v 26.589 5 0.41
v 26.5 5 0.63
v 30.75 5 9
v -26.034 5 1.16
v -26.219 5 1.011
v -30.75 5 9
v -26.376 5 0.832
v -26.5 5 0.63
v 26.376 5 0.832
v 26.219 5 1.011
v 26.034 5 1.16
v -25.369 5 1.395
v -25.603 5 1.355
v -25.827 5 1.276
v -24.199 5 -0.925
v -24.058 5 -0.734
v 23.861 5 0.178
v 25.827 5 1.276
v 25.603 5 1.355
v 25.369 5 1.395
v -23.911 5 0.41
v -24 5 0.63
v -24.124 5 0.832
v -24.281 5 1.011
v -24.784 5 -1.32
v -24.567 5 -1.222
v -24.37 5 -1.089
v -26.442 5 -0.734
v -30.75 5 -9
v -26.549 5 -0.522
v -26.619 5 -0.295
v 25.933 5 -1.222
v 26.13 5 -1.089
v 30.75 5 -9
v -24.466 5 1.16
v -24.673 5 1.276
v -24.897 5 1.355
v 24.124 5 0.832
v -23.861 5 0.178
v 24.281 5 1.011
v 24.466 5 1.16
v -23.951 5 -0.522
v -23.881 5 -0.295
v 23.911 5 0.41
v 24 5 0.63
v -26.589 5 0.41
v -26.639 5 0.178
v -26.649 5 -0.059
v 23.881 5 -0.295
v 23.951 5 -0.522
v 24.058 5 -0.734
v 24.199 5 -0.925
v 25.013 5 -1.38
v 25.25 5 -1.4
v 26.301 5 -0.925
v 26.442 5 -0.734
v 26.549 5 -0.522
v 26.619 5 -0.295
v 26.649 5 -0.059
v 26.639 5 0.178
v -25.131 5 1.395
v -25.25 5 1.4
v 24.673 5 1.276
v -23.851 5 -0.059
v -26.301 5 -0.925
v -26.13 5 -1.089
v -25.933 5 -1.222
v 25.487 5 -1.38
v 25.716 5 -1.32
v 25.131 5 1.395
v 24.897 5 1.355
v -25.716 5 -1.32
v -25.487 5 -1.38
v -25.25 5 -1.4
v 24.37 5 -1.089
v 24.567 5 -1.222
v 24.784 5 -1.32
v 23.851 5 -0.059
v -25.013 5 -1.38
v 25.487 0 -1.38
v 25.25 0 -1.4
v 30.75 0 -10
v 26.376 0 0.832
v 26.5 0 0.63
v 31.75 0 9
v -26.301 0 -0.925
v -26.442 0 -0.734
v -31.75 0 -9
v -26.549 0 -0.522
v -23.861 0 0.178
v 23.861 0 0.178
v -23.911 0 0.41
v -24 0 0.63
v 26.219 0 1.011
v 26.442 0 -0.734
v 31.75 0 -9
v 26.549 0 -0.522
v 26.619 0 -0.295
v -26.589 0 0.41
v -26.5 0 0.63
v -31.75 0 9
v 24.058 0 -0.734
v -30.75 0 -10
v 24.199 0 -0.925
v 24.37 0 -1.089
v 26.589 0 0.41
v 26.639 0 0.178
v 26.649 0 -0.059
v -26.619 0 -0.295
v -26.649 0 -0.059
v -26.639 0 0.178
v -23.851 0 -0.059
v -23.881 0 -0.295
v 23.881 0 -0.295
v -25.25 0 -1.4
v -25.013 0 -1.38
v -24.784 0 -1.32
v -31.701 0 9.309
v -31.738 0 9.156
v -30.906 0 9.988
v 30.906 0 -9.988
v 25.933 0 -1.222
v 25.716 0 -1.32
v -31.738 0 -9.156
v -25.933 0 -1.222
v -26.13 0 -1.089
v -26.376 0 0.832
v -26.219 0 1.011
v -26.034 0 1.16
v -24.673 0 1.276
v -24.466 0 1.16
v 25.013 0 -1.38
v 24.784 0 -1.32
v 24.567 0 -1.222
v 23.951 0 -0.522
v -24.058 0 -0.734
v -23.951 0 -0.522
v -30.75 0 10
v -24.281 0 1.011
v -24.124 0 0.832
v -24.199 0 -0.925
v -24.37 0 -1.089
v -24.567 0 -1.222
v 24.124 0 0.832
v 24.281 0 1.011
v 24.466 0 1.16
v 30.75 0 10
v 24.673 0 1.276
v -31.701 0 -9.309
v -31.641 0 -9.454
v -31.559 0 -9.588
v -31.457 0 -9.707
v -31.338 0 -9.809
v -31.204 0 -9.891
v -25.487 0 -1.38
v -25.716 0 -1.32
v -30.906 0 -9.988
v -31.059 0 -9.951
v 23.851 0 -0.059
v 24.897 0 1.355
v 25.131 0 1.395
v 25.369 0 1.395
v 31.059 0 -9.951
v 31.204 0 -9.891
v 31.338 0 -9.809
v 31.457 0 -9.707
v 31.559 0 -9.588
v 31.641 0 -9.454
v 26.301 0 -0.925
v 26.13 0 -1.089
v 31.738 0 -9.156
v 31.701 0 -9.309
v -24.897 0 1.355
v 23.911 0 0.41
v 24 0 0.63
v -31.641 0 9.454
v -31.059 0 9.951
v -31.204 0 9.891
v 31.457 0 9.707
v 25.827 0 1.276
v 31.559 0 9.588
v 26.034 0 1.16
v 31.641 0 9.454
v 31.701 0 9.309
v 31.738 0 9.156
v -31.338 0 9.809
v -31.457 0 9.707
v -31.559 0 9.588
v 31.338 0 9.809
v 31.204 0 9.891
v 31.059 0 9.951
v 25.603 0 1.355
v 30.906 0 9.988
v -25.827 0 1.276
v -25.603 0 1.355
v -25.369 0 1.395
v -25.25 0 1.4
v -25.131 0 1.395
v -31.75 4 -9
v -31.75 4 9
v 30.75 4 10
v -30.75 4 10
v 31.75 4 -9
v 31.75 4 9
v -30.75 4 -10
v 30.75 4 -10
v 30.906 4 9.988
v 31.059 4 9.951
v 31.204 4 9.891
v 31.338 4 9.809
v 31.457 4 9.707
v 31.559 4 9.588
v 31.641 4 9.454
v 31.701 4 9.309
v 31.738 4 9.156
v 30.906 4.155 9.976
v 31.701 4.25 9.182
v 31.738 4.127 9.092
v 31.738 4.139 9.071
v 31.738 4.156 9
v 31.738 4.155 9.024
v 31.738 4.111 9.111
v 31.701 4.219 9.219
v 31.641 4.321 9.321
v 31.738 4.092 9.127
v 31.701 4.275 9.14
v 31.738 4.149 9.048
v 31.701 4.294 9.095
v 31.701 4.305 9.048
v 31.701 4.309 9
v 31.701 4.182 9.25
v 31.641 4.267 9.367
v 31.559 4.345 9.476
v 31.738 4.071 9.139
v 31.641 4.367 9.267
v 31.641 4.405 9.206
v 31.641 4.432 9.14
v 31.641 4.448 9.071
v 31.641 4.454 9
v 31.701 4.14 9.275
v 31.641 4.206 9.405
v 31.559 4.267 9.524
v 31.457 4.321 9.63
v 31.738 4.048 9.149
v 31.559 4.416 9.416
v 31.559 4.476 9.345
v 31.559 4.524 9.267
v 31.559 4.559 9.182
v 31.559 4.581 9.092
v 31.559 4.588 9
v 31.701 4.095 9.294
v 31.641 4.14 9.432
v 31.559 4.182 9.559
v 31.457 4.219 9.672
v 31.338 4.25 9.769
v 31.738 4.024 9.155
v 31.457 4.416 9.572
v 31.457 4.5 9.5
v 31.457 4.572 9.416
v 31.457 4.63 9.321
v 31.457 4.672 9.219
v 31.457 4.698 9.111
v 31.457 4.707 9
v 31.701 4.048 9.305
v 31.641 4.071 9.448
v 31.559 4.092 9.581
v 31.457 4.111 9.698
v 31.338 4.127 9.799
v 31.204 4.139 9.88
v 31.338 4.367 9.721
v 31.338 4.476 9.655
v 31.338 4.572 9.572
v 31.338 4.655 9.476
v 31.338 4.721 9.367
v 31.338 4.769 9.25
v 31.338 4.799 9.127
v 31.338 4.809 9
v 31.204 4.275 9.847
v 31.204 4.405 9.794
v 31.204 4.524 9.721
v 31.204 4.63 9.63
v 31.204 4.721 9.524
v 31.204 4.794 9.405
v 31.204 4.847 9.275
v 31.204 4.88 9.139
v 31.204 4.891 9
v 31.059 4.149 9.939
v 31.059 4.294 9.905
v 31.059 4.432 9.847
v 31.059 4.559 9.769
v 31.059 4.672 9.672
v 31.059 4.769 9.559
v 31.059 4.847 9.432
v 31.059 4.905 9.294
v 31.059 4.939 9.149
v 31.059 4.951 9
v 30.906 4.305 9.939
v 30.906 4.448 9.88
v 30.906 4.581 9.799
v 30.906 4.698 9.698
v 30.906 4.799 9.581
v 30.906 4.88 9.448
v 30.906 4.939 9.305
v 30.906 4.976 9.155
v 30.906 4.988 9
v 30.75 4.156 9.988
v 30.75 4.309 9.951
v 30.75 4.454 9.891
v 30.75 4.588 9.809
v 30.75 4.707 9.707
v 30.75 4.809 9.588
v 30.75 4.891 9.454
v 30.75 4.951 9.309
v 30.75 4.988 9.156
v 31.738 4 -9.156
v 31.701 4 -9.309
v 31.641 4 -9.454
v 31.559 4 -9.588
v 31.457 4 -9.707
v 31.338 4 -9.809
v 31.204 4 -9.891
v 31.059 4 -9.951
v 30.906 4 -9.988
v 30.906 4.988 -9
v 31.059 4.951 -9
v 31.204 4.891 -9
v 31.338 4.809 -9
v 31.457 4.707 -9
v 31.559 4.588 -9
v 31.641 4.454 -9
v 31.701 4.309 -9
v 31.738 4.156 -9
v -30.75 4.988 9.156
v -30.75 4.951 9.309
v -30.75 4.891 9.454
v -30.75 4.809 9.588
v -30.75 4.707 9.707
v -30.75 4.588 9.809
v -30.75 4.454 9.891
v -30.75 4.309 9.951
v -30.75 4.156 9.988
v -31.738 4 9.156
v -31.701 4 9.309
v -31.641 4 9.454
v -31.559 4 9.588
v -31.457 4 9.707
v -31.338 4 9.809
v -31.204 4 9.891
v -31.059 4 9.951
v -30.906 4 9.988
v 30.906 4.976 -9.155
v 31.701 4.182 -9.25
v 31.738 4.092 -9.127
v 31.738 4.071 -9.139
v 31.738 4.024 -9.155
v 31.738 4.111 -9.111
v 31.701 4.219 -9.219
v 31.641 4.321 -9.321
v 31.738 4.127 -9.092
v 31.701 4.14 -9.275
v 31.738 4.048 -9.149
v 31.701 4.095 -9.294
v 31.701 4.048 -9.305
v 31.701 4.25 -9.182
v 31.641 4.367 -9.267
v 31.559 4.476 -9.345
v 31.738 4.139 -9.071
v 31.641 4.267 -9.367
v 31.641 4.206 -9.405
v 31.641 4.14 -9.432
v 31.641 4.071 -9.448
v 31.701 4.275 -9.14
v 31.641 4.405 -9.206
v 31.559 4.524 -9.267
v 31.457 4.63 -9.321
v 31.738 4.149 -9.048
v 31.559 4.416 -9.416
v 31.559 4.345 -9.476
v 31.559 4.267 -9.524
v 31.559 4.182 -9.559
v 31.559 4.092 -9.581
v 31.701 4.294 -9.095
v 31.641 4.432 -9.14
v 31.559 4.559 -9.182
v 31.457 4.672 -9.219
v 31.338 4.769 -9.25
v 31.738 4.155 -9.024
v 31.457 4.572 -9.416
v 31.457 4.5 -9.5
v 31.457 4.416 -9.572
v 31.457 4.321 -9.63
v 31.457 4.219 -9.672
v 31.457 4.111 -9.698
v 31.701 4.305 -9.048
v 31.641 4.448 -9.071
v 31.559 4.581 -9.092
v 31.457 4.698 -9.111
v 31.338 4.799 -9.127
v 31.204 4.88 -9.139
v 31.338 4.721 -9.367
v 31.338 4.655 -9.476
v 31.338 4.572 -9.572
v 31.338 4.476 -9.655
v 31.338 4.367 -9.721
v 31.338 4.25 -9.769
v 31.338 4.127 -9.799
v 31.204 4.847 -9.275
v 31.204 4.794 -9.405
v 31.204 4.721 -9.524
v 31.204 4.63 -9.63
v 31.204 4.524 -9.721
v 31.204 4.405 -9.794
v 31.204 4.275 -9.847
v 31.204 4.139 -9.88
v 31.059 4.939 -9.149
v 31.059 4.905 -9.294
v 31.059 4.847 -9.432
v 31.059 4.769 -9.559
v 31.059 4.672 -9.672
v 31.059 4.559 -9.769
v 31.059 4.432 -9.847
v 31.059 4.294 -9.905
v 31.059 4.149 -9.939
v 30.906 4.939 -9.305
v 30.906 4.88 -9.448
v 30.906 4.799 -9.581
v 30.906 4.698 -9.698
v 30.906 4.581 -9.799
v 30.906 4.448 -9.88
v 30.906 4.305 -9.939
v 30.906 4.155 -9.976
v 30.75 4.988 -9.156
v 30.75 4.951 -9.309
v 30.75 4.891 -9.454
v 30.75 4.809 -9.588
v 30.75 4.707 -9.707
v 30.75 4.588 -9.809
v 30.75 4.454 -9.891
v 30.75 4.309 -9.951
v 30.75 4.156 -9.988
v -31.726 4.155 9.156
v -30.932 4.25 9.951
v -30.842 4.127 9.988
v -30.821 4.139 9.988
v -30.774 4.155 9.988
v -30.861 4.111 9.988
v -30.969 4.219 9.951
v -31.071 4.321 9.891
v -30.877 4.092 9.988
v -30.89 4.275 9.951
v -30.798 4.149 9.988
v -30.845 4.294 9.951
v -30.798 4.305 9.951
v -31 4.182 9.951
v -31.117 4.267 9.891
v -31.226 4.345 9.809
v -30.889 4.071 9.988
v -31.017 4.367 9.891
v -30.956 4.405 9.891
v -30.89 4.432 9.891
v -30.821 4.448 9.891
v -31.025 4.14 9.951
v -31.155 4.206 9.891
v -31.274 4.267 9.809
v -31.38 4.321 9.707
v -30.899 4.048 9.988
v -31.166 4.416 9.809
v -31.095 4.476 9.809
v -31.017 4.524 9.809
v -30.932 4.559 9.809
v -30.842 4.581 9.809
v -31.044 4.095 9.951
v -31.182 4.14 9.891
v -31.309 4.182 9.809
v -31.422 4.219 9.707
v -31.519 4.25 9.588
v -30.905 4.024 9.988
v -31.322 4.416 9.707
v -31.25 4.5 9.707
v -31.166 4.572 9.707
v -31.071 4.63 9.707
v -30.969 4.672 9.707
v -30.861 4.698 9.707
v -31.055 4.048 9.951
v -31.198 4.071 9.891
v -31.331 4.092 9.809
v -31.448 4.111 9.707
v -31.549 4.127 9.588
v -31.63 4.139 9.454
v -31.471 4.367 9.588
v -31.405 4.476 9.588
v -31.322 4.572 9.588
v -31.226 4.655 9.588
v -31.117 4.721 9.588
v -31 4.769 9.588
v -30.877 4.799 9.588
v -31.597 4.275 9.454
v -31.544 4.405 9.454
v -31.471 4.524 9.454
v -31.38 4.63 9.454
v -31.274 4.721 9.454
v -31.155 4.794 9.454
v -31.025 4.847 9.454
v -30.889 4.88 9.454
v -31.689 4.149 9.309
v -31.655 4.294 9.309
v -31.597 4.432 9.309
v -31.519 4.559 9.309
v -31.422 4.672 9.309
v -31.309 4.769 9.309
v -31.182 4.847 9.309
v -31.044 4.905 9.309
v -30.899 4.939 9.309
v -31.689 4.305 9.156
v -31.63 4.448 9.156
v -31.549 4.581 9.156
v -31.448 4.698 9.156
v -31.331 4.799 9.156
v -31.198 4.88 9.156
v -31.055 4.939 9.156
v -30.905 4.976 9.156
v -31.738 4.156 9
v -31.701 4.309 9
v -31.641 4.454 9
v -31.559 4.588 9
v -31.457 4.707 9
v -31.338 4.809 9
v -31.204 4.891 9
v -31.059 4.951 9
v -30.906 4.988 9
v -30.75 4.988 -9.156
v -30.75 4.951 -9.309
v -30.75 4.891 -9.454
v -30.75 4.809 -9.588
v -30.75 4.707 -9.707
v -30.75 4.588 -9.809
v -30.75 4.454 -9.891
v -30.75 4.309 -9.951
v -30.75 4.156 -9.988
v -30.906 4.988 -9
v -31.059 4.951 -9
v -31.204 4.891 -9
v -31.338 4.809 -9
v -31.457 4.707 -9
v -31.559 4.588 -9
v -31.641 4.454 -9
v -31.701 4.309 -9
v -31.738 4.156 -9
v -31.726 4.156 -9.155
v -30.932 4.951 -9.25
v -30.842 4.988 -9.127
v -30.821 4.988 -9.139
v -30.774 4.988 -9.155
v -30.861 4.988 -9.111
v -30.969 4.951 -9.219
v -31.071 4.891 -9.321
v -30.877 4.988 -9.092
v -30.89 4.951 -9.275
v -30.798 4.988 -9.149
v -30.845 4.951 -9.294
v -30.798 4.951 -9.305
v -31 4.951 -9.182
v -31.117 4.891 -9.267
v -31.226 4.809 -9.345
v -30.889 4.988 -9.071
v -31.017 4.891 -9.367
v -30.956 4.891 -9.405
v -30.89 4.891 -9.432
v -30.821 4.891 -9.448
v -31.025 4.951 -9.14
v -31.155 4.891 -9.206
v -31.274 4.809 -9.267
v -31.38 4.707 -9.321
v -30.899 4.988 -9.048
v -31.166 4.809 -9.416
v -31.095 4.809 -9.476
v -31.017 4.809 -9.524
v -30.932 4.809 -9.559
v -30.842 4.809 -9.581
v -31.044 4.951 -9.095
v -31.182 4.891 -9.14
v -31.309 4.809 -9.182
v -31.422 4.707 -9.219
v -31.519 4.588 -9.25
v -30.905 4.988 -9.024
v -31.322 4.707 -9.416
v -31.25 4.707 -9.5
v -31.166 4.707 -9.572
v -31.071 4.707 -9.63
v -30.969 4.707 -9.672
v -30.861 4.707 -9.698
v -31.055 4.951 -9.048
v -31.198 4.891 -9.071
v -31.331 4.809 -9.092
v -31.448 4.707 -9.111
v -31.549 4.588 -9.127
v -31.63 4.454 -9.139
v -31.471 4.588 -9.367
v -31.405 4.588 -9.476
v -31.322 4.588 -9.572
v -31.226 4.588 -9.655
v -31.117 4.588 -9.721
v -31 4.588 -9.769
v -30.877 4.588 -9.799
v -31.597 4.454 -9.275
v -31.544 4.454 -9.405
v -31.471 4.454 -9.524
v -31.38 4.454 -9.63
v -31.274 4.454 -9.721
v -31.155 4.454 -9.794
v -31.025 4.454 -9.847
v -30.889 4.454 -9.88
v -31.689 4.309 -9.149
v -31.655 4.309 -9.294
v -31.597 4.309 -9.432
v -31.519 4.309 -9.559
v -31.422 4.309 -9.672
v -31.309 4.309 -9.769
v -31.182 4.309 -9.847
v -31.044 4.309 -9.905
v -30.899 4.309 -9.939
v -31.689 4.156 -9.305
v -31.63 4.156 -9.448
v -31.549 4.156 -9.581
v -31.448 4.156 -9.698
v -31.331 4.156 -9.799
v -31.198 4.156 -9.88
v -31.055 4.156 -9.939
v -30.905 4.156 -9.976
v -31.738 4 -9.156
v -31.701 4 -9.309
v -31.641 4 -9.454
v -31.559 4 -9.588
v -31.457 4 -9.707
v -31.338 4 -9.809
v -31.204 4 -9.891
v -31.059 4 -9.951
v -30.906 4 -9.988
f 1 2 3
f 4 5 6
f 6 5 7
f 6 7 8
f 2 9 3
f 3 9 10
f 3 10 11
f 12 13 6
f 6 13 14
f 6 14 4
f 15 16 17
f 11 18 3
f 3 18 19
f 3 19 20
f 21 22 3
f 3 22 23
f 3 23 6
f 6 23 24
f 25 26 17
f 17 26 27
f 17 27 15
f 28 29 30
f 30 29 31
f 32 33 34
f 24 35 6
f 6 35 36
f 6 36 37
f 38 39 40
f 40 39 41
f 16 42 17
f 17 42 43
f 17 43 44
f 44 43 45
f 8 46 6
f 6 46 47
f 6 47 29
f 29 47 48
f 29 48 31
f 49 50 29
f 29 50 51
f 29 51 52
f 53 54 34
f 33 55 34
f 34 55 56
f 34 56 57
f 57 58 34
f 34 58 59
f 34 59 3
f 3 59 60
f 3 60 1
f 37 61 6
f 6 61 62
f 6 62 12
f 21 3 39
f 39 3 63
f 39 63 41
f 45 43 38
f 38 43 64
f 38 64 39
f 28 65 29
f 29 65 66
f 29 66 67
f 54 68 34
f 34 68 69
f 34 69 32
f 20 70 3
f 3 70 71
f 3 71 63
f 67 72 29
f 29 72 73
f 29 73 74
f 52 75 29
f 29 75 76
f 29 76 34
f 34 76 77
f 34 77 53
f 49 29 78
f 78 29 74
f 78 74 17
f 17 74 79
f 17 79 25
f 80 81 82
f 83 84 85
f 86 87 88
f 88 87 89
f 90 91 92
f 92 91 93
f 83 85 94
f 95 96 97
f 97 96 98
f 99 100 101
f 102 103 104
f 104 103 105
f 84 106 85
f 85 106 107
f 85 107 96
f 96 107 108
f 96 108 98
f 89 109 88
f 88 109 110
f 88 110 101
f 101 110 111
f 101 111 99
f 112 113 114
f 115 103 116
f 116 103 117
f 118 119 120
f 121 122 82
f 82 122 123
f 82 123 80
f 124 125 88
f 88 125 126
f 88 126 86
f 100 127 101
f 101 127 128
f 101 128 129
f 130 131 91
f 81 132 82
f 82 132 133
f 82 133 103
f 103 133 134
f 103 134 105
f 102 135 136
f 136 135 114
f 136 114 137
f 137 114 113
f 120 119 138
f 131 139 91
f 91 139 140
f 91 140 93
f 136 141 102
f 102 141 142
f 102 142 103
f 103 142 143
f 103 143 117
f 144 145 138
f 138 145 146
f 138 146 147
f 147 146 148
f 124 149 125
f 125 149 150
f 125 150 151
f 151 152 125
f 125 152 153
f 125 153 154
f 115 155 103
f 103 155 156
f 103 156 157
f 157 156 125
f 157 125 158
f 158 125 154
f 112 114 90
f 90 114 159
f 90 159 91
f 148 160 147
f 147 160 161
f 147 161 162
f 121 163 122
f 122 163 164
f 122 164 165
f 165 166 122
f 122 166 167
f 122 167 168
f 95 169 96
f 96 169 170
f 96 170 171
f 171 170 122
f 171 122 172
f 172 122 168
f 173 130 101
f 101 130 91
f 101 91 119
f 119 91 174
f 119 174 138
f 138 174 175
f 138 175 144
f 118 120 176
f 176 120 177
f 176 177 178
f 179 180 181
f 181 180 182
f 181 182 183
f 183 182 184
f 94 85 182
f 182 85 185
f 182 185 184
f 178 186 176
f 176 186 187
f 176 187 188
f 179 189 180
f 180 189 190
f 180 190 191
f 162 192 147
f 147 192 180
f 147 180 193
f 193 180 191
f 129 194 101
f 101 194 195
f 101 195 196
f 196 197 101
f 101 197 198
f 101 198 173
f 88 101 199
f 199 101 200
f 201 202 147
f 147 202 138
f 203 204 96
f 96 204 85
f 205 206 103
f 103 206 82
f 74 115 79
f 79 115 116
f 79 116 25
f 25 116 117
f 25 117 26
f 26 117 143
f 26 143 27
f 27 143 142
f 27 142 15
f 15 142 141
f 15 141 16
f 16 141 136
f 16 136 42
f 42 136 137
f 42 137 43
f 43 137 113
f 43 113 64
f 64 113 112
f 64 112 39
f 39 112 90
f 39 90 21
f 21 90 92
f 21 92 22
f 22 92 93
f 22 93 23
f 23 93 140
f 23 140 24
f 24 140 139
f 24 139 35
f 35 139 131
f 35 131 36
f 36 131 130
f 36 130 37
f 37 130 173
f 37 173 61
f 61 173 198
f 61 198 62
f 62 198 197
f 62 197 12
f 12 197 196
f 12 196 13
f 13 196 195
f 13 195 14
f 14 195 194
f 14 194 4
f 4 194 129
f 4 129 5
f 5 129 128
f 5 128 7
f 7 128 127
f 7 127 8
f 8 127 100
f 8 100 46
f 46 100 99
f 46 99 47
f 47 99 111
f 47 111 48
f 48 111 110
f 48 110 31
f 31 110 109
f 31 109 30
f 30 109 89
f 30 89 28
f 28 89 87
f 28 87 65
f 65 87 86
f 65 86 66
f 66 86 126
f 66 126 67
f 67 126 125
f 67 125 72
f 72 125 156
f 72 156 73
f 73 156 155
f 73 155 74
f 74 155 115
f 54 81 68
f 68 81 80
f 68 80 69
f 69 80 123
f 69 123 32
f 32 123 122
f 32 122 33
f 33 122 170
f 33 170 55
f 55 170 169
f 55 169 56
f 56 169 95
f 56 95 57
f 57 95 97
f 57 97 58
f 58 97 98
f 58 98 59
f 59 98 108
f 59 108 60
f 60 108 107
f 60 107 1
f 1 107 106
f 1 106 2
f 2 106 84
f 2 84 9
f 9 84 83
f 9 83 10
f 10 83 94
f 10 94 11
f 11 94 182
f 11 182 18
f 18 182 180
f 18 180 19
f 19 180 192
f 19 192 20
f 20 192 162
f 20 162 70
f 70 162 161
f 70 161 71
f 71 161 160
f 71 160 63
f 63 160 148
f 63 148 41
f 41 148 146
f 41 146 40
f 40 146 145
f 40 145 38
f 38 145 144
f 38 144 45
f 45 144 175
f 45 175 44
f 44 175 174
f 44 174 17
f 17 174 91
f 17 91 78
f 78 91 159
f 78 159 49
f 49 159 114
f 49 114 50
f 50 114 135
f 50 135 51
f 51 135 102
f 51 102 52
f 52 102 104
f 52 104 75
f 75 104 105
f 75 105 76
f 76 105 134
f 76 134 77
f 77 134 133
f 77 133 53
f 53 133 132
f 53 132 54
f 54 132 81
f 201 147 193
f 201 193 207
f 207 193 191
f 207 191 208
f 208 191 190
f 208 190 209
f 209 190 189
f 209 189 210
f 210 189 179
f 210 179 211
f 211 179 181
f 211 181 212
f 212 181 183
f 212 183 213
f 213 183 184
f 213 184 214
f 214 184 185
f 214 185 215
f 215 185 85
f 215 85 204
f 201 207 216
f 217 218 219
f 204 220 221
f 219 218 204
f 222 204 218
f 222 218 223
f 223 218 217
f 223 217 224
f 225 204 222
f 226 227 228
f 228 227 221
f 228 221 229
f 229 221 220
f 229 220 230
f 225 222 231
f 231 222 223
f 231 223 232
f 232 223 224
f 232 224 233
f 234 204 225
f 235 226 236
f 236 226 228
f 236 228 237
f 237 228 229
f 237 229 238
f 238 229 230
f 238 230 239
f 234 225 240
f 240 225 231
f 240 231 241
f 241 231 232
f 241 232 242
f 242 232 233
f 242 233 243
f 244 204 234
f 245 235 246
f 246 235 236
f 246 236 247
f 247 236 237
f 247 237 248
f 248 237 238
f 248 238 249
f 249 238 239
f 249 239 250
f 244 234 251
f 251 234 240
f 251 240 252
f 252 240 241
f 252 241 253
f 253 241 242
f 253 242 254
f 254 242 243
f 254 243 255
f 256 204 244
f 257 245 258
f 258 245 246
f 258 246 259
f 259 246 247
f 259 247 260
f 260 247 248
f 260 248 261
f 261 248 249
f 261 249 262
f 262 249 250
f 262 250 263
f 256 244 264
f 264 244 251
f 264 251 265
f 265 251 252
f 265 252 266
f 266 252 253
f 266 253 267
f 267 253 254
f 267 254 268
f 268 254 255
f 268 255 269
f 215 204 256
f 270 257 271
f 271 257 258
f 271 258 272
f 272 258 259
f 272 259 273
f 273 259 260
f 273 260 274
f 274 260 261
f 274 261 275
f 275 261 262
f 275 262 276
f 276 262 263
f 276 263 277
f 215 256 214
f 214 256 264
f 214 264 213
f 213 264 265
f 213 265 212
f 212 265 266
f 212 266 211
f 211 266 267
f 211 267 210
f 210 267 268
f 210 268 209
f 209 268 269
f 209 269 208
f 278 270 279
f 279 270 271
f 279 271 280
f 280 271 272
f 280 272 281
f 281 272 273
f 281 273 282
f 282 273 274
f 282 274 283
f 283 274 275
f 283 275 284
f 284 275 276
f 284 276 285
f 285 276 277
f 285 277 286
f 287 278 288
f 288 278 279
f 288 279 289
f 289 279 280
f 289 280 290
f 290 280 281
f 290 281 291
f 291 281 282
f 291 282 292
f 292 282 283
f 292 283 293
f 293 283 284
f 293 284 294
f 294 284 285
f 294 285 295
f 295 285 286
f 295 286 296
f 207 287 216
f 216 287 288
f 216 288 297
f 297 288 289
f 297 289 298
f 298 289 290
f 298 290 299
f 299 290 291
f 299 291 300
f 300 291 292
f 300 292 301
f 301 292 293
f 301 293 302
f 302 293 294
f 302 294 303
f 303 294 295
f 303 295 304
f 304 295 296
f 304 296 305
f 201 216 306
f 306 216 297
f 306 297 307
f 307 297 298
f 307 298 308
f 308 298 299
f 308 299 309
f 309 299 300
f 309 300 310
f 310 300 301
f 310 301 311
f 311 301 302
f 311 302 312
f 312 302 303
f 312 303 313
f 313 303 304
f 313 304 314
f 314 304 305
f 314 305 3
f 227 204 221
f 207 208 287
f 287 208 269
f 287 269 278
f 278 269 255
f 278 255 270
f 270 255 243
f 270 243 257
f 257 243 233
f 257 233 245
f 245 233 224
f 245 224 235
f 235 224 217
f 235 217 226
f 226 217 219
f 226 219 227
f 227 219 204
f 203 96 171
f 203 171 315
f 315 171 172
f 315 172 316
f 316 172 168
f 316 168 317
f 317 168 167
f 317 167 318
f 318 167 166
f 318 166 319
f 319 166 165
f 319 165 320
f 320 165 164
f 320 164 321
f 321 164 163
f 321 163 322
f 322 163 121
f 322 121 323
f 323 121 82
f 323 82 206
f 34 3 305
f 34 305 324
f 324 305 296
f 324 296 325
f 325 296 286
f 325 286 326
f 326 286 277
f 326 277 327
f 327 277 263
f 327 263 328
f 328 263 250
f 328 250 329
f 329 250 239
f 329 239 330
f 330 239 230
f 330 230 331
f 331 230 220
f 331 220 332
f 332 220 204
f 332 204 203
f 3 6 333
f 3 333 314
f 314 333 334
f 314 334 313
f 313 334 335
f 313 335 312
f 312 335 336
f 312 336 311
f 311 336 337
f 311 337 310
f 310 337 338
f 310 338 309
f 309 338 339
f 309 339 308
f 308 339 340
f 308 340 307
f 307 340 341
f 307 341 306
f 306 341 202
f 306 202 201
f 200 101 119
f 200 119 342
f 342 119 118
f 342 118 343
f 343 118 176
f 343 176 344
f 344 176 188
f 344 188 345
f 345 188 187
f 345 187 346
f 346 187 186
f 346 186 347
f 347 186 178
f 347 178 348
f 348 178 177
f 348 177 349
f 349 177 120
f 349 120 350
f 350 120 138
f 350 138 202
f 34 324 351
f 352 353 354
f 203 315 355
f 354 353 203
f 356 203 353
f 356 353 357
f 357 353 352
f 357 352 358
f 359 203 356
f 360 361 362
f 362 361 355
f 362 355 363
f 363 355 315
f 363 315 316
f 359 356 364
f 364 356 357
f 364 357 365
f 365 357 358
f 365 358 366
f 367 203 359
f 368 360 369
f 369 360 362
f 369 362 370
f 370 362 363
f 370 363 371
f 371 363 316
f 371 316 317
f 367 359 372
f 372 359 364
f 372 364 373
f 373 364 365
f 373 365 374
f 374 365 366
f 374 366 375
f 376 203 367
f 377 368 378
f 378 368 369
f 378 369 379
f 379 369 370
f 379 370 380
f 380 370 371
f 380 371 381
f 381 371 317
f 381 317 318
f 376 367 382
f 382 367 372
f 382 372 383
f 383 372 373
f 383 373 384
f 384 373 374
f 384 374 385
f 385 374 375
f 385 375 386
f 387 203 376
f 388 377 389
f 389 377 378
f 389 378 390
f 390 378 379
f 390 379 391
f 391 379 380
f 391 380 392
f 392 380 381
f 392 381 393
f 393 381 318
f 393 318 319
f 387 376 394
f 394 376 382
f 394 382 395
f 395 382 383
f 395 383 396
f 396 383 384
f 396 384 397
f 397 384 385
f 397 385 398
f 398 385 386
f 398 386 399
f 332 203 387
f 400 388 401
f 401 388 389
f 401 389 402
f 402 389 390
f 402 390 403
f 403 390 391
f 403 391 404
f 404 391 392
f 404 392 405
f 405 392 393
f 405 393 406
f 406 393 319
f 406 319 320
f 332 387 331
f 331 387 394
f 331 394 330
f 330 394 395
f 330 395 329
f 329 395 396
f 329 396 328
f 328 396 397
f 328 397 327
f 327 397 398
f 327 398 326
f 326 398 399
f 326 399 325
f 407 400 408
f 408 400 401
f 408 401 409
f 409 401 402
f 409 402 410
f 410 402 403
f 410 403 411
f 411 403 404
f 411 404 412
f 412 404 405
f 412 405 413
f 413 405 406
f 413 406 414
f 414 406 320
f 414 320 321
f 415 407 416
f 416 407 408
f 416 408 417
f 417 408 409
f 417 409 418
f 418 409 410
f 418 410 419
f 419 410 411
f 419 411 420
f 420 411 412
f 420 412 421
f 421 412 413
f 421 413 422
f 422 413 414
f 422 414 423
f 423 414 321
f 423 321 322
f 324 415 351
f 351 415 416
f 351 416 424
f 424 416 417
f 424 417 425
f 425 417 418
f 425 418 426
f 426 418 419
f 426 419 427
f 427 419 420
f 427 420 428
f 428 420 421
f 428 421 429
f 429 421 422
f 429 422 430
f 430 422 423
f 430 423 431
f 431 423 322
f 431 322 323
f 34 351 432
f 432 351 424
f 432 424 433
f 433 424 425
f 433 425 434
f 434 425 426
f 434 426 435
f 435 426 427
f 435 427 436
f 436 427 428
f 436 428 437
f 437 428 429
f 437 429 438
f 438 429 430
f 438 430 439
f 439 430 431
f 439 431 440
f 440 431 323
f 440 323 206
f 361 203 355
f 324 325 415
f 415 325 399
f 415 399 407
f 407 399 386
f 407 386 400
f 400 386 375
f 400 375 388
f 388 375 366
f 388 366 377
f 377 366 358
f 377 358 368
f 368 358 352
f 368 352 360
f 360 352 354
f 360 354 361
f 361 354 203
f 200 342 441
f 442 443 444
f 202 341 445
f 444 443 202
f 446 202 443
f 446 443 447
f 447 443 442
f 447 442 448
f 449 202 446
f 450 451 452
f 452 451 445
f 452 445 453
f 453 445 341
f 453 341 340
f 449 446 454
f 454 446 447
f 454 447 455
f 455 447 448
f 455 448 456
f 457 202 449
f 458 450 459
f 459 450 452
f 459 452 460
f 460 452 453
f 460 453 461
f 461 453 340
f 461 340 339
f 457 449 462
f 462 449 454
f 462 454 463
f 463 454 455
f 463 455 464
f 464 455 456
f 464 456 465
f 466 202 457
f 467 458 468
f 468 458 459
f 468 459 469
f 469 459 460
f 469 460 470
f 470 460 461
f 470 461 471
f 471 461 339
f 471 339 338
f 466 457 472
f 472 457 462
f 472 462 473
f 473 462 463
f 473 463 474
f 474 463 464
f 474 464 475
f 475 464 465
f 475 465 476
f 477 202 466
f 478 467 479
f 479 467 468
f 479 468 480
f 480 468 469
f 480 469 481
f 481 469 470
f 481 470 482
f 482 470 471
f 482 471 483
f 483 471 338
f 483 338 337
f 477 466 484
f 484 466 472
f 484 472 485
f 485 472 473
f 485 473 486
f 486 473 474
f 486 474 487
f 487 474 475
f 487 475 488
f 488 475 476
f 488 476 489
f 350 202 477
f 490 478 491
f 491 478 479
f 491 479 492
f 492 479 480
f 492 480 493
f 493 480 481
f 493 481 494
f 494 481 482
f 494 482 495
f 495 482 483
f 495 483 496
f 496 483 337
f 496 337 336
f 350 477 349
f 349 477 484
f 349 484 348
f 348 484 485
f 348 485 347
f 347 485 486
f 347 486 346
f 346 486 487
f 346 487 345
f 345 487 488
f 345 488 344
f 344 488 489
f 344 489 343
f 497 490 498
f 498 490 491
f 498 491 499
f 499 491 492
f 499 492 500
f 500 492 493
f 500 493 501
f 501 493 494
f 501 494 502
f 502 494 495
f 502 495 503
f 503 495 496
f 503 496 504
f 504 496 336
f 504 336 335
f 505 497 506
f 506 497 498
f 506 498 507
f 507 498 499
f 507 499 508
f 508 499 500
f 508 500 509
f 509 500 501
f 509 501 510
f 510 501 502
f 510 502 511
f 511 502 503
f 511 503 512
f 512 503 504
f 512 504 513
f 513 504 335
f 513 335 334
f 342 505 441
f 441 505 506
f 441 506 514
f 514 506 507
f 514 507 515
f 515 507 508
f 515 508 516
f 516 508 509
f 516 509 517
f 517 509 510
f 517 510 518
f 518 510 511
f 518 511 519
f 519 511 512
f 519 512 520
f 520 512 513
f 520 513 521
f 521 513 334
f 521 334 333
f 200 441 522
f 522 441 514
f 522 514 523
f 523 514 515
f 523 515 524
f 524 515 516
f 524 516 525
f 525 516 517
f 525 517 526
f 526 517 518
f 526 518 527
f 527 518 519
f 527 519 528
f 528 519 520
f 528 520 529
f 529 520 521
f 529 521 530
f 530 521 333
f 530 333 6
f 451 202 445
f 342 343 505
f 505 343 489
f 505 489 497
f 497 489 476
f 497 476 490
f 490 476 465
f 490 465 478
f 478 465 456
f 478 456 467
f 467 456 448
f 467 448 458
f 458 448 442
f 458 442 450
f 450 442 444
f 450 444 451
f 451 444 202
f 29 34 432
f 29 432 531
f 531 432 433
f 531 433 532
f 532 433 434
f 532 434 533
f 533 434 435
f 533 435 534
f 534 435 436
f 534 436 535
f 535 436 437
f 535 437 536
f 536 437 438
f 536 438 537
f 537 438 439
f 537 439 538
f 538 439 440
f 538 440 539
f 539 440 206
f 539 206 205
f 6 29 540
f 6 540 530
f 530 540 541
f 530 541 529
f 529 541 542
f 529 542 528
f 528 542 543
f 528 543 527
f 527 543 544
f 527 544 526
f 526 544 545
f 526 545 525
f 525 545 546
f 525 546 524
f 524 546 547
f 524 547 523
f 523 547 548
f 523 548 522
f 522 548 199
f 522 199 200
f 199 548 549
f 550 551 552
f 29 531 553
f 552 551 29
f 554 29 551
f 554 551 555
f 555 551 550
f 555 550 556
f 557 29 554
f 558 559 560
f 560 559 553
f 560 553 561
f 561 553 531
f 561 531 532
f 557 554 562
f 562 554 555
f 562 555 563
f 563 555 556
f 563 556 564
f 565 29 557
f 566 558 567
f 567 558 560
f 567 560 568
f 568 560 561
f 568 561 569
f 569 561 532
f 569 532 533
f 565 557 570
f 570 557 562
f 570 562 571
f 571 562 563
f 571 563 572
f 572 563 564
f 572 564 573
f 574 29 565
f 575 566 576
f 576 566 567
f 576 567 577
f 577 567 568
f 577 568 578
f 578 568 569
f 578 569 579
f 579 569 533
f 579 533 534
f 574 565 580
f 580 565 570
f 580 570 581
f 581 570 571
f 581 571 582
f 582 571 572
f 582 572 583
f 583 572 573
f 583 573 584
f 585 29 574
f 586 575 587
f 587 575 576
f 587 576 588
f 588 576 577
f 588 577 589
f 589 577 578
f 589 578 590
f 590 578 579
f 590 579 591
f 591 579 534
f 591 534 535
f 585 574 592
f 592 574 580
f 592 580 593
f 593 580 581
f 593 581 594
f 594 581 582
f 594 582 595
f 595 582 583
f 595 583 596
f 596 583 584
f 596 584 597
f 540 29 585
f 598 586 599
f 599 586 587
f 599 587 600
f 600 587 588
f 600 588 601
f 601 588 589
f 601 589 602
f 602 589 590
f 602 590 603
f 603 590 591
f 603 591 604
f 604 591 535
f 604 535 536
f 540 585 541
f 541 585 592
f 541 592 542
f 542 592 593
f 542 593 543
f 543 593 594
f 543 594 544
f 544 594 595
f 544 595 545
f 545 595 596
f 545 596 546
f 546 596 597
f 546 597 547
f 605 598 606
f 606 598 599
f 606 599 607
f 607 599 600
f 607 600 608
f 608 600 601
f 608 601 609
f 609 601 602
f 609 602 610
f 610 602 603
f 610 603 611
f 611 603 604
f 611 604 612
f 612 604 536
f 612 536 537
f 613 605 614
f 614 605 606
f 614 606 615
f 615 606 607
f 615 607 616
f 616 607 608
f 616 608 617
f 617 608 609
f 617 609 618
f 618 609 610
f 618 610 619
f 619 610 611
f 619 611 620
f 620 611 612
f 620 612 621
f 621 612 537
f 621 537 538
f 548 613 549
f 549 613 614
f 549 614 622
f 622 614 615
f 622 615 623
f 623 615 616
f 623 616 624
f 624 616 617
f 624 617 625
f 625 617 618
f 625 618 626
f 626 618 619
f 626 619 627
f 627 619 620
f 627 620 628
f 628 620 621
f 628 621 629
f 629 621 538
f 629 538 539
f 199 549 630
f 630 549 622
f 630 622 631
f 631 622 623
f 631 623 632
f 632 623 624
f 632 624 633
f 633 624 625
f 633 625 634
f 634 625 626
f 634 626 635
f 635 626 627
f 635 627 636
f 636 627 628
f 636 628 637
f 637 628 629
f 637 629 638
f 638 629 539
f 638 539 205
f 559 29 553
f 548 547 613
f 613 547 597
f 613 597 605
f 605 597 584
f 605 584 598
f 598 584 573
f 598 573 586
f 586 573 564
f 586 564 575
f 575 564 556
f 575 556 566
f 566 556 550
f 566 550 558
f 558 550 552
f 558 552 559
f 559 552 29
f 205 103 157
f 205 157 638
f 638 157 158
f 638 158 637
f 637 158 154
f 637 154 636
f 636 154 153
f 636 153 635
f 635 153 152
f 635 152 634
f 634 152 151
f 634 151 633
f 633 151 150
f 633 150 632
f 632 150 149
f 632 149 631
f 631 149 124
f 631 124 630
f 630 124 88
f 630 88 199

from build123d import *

# Parameters (mm, degrees)
SKETCH1_W            = 63.5
SKETCH1_H            = 20
SKETCH1_R            = 1.4
BASE_DEPTH           = 5
F_1MM_EDGE_FILLETS_R = 1


with BuildPart() as part:
    # Sketch1 → Base (new body)
    with BuildSketch(Plane(origin=(0, 0, 0), x_dir=(1, 0, 0), z_dir=(0, 1, 0))):
        Rectangle(SKETCH1_W, SKETCH1_H)
        with Locations((-25.25, 0)):
            Circle(SKETCH1_R, mode=Mode.SUBTRACT)
        with Locations((25.25, 0)):
            Circle(SKETCH1_R, mode=Mode.SUBTRACT)
    extrude(amount=BASE_DEPTH)

    # 1mm Edge Fillets
    f_1mm_edge_fillets_edges = [part.edges().sort_by_distance(p)[0] for p in [
        (-31.75, 2.5, -10),
        (0, 5, -10),
        (31.75, 2.5, -10),
        (31.75, 2.5, 10),
        (31.75, 5, 0),
        (-31.75, 5, 0),
        (0, 5, 10),
        (-31.75, 2.5, 10),
    ]]
    fillet(f_1mm_edge_fillets_edges, radius=F_1MM_EDGE_FILLETS_R)


solid = part.part
